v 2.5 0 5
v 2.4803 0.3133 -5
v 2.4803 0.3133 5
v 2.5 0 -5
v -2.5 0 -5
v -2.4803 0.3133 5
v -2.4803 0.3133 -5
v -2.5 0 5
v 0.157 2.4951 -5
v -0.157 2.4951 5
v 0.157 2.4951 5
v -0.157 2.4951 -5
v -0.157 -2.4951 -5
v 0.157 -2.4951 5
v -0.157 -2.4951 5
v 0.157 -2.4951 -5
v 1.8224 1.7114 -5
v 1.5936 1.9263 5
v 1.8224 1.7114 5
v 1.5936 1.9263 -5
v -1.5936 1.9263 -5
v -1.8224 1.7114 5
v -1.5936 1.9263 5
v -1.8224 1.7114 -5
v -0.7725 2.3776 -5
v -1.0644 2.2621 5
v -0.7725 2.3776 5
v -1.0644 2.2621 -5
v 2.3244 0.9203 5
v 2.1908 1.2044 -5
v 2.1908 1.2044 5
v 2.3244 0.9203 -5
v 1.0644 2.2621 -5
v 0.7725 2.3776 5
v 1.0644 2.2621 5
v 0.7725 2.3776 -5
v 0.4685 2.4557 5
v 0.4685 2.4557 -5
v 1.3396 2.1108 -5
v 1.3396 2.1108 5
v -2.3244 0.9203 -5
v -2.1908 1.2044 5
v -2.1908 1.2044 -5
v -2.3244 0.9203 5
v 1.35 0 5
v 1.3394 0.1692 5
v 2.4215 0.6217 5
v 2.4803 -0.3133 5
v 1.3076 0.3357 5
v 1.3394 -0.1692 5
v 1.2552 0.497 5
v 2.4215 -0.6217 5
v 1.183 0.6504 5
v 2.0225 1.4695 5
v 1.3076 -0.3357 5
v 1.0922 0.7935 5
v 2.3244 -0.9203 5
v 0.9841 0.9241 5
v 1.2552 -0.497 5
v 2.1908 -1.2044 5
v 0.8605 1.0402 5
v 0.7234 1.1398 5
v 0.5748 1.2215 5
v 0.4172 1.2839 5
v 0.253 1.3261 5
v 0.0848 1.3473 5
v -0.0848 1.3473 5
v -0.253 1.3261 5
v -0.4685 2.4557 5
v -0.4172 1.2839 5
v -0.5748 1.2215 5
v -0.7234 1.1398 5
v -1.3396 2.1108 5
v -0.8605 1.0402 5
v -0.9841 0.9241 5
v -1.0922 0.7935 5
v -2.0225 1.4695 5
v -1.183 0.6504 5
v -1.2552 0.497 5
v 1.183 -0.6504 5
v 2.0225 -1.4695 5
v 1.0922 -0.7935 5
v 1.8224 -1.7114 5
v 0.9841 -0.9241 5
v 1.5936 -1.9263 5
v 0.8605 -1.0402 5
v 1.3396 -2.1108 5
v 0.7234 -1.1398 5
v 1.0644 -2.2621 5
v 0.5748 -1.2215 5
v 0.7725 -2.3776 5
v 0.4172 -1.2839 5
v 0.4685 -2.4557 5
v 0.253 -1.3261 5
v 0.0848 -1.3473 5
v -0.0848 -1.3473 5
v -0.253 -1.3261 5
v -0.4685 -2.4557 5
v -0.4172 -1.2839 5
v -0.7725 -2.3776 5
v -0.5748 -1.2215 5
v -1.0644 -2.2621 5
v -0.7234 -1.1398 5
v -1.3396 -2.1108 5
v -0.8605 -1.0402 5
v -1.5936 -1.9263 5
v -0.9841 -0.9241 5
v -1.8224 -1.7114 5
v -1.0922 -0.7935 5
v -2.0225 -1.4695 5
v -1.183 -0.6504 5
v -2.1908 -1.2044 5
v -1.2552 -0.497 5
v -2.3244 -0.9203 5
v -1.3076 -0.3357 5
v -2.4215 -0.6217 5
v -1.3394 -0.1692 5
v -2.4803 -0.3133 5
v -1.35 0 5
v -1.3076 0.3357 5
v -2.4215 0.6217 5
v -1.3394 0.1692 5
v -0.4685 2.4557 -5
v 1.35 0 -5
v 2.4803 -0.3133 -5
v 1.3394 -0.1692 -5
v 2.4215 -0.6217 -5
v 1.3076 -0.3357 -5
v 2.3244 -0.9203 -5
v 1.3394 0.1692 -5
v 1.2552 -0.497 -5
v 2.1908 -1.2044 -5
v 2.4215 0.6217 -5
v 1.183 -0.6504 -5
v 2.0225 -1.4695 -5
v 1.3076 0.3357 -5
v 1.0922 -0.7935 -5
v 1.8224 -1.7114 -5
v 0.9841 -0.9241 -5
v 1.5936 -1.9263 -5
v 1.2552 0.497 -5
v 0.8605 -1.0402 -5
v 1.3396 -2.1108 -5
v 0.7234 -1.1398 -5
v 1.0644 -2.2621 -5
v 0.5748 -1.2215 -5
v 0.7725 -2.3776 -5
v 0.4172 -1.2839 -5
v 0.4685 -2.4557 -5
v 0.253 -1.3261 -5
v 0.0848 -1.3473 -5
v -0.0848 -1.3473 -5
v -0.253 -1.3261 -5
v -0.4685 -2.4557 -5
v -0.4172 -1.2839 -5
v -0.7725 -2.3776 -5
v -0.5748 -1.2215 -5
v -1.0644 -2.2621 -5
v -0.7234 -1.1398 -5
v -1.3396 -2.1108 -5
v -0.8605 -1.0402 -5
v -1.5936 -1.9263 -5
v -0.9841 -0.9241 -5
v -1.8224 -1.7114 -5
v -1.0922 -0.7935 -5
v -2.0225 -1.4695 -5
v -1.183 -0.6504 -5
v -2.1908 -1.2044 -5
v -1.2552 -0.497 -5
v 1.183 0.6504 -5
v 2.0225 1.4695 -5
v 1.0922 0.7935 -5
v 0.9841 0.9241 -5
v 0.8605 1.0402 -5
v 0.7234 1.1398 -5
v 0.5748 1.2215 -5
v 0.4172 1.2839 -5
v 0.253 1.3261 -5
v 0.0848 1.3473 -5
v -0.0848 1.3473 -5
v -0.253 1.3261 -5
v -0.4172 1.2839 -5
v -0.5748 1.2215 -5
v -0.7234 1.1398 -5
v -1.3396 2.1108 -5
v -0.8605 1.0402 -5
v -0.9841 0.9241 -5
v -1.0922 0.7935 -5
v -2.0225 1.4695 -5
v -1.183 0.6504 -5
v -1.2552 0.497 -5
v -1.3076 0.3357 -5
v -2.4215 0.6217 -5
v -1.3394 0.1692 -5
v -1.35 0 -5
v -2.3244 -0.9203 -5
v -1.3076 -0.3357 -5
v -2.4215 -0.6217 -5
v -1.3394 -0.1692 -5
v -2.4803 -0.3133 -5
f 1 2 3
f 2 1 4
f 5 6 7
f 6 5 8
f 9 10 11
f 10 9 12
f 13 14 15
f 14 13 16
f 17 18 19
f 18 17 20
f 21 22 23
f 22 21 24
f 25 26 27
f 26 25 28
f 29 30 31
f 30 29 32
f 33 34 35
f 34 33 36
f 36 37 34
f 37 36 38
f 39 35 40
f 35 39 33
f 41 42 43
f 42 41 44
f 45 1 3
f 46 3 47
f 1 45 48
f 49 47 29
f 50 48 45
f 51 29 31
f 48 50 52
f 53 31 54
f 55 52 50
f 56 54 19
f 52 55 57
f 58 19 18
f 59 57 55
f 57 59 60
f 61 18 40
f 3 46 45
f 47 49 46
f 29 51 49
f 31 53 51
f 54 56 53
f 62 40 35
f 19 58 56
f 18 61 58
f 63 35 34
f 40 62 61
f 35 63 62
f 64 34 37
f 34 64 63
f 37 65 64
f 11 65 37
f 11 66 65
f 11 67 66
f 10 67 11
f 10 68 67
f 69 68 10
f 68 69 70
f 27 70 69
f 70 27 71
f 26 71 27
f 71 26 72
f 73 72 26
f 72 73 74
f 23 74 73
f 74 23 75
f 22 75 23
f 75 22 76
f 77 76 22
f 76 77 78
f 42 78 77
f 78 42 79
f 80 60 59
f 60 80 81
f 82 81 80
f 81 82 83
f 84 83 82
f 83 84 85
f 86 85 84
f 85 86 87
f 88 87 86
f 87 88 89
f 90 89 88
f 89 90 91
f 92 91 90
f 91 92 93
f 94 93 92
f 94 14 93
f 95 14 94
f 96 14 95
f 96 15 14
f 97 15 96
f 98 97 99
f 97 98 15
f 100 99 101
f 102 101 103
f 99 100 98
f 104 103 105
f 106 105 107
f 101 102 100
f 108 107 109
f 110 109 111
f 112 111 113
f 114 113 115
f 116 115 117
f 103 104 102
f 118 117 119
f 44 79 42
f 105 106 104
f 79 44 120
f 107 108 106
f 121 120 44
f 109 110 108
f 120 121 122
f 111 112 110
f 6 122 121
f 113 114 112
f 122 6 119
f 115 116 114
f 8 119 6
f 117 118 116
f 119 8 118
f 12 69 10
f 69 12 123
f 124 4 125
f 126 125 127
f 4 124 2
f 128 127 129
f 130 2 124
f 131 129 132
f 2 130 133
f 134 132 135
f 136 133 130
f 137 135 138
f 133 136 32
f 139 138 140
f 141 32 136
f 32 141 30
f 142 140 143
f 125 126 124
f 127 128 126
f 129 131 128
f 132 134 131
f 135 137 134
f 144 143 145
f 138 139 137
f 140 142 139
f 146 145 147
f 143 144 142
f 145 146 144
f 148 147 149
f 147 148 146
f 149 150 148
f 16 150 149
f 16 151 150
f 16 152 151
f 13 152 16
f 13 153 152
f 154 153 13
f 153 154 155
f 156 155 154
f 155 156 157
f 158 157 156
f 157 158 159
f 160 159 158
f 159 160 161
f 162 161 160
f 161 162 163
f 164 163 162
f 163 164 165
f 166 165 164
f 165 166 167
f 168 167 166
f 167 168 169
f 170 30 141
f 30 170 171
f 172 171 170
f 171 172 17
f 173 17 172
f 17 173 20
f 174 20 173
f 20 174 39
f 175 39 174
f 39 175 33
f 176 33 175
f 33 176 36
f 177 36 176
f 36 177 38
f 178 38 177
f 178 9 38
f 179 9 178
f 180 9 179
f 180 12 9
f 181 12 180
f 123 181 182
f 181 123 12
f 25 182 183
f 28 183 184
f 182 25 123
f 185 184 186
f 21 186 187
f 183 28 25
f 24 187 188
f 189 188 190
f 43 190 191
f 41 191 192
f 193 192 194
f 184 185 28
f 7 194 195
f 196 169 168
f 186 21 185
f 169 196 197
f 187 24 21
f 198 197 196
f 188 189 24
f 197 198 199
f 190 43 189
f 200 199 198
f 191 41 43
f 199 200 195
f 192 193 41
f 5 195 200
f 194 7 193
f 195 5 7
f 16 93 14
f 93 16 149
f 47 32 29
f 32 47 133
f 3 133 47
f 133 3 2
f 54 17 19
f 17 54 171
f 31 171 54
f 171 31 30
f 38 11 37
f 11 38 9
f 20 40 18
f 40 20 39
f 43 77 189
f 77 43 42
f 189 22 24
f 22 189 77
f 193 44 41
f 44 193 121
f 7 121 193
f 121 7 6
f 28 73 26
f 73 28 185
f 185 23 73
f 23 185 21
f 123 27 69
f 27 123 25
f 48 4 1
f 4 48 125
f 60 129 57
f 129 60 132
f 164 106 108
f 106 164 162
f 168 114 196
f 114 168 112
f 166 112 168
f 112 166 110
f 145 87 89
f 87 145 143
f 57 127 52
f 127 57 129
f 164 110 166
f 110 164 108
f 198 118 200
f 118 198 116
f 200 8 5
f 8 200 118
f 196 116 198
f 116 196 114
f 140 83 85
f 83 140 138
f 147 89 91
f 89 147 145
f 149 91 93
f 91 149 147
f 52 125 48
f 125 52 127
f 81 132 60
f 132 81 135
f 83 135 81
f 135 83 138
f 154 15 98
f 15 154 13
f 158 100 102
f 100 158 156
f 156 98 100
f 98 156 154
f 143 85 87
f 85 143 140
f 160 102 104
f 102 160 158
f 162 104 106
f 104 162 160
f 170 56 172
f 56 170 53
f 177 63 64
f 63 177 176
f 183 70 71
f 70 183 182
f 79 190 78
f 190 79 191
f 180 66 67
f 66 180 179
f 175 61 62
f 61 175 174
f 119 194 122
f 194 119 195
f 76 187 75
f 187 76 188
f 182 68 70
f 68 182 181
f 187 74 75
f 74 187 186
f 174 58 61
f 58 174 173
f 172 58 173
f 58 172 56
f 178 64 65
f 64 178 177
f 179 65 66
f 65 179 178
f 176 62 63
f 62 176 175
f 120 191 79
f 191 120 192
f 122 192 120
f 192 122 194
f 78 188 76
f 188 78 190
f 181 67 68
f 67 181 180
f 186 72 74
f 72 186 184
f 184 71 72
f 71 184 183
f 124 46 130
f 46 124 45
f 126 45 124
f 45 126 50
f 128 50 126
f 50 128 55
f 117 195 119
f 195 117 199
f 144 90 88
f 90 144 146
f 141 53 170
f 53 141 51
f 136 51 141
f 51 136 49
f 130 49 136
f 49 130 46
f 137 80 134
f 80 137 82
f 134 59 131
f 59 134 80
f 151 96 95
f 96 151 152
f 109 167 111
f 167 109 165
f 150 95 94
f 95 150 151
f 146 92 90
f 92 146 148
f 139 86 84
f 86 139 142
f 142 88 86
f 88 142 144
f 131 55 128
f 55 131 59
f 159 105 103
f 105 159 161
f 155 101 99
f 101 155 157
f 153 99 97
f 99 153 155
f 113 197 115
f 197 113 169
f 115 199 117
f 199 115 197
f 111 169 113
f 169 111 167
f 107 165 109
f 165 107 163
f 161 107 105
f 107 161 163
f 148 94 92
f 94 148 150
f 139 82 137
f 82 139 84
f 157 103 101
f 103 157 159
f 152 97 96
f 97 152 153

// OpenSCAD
$fn = 50;


difference() {
	union() {
		translate(v = [0, 0, -5.0000000000]) {
			cylinder(h = 10, r = 2.5000000000);
		}
	}
	union() {
		translate(v = [0, 0, -100.0000000000]) {
			cylinder(h = 200, r = 1.3500000000);
		}
	}
}
